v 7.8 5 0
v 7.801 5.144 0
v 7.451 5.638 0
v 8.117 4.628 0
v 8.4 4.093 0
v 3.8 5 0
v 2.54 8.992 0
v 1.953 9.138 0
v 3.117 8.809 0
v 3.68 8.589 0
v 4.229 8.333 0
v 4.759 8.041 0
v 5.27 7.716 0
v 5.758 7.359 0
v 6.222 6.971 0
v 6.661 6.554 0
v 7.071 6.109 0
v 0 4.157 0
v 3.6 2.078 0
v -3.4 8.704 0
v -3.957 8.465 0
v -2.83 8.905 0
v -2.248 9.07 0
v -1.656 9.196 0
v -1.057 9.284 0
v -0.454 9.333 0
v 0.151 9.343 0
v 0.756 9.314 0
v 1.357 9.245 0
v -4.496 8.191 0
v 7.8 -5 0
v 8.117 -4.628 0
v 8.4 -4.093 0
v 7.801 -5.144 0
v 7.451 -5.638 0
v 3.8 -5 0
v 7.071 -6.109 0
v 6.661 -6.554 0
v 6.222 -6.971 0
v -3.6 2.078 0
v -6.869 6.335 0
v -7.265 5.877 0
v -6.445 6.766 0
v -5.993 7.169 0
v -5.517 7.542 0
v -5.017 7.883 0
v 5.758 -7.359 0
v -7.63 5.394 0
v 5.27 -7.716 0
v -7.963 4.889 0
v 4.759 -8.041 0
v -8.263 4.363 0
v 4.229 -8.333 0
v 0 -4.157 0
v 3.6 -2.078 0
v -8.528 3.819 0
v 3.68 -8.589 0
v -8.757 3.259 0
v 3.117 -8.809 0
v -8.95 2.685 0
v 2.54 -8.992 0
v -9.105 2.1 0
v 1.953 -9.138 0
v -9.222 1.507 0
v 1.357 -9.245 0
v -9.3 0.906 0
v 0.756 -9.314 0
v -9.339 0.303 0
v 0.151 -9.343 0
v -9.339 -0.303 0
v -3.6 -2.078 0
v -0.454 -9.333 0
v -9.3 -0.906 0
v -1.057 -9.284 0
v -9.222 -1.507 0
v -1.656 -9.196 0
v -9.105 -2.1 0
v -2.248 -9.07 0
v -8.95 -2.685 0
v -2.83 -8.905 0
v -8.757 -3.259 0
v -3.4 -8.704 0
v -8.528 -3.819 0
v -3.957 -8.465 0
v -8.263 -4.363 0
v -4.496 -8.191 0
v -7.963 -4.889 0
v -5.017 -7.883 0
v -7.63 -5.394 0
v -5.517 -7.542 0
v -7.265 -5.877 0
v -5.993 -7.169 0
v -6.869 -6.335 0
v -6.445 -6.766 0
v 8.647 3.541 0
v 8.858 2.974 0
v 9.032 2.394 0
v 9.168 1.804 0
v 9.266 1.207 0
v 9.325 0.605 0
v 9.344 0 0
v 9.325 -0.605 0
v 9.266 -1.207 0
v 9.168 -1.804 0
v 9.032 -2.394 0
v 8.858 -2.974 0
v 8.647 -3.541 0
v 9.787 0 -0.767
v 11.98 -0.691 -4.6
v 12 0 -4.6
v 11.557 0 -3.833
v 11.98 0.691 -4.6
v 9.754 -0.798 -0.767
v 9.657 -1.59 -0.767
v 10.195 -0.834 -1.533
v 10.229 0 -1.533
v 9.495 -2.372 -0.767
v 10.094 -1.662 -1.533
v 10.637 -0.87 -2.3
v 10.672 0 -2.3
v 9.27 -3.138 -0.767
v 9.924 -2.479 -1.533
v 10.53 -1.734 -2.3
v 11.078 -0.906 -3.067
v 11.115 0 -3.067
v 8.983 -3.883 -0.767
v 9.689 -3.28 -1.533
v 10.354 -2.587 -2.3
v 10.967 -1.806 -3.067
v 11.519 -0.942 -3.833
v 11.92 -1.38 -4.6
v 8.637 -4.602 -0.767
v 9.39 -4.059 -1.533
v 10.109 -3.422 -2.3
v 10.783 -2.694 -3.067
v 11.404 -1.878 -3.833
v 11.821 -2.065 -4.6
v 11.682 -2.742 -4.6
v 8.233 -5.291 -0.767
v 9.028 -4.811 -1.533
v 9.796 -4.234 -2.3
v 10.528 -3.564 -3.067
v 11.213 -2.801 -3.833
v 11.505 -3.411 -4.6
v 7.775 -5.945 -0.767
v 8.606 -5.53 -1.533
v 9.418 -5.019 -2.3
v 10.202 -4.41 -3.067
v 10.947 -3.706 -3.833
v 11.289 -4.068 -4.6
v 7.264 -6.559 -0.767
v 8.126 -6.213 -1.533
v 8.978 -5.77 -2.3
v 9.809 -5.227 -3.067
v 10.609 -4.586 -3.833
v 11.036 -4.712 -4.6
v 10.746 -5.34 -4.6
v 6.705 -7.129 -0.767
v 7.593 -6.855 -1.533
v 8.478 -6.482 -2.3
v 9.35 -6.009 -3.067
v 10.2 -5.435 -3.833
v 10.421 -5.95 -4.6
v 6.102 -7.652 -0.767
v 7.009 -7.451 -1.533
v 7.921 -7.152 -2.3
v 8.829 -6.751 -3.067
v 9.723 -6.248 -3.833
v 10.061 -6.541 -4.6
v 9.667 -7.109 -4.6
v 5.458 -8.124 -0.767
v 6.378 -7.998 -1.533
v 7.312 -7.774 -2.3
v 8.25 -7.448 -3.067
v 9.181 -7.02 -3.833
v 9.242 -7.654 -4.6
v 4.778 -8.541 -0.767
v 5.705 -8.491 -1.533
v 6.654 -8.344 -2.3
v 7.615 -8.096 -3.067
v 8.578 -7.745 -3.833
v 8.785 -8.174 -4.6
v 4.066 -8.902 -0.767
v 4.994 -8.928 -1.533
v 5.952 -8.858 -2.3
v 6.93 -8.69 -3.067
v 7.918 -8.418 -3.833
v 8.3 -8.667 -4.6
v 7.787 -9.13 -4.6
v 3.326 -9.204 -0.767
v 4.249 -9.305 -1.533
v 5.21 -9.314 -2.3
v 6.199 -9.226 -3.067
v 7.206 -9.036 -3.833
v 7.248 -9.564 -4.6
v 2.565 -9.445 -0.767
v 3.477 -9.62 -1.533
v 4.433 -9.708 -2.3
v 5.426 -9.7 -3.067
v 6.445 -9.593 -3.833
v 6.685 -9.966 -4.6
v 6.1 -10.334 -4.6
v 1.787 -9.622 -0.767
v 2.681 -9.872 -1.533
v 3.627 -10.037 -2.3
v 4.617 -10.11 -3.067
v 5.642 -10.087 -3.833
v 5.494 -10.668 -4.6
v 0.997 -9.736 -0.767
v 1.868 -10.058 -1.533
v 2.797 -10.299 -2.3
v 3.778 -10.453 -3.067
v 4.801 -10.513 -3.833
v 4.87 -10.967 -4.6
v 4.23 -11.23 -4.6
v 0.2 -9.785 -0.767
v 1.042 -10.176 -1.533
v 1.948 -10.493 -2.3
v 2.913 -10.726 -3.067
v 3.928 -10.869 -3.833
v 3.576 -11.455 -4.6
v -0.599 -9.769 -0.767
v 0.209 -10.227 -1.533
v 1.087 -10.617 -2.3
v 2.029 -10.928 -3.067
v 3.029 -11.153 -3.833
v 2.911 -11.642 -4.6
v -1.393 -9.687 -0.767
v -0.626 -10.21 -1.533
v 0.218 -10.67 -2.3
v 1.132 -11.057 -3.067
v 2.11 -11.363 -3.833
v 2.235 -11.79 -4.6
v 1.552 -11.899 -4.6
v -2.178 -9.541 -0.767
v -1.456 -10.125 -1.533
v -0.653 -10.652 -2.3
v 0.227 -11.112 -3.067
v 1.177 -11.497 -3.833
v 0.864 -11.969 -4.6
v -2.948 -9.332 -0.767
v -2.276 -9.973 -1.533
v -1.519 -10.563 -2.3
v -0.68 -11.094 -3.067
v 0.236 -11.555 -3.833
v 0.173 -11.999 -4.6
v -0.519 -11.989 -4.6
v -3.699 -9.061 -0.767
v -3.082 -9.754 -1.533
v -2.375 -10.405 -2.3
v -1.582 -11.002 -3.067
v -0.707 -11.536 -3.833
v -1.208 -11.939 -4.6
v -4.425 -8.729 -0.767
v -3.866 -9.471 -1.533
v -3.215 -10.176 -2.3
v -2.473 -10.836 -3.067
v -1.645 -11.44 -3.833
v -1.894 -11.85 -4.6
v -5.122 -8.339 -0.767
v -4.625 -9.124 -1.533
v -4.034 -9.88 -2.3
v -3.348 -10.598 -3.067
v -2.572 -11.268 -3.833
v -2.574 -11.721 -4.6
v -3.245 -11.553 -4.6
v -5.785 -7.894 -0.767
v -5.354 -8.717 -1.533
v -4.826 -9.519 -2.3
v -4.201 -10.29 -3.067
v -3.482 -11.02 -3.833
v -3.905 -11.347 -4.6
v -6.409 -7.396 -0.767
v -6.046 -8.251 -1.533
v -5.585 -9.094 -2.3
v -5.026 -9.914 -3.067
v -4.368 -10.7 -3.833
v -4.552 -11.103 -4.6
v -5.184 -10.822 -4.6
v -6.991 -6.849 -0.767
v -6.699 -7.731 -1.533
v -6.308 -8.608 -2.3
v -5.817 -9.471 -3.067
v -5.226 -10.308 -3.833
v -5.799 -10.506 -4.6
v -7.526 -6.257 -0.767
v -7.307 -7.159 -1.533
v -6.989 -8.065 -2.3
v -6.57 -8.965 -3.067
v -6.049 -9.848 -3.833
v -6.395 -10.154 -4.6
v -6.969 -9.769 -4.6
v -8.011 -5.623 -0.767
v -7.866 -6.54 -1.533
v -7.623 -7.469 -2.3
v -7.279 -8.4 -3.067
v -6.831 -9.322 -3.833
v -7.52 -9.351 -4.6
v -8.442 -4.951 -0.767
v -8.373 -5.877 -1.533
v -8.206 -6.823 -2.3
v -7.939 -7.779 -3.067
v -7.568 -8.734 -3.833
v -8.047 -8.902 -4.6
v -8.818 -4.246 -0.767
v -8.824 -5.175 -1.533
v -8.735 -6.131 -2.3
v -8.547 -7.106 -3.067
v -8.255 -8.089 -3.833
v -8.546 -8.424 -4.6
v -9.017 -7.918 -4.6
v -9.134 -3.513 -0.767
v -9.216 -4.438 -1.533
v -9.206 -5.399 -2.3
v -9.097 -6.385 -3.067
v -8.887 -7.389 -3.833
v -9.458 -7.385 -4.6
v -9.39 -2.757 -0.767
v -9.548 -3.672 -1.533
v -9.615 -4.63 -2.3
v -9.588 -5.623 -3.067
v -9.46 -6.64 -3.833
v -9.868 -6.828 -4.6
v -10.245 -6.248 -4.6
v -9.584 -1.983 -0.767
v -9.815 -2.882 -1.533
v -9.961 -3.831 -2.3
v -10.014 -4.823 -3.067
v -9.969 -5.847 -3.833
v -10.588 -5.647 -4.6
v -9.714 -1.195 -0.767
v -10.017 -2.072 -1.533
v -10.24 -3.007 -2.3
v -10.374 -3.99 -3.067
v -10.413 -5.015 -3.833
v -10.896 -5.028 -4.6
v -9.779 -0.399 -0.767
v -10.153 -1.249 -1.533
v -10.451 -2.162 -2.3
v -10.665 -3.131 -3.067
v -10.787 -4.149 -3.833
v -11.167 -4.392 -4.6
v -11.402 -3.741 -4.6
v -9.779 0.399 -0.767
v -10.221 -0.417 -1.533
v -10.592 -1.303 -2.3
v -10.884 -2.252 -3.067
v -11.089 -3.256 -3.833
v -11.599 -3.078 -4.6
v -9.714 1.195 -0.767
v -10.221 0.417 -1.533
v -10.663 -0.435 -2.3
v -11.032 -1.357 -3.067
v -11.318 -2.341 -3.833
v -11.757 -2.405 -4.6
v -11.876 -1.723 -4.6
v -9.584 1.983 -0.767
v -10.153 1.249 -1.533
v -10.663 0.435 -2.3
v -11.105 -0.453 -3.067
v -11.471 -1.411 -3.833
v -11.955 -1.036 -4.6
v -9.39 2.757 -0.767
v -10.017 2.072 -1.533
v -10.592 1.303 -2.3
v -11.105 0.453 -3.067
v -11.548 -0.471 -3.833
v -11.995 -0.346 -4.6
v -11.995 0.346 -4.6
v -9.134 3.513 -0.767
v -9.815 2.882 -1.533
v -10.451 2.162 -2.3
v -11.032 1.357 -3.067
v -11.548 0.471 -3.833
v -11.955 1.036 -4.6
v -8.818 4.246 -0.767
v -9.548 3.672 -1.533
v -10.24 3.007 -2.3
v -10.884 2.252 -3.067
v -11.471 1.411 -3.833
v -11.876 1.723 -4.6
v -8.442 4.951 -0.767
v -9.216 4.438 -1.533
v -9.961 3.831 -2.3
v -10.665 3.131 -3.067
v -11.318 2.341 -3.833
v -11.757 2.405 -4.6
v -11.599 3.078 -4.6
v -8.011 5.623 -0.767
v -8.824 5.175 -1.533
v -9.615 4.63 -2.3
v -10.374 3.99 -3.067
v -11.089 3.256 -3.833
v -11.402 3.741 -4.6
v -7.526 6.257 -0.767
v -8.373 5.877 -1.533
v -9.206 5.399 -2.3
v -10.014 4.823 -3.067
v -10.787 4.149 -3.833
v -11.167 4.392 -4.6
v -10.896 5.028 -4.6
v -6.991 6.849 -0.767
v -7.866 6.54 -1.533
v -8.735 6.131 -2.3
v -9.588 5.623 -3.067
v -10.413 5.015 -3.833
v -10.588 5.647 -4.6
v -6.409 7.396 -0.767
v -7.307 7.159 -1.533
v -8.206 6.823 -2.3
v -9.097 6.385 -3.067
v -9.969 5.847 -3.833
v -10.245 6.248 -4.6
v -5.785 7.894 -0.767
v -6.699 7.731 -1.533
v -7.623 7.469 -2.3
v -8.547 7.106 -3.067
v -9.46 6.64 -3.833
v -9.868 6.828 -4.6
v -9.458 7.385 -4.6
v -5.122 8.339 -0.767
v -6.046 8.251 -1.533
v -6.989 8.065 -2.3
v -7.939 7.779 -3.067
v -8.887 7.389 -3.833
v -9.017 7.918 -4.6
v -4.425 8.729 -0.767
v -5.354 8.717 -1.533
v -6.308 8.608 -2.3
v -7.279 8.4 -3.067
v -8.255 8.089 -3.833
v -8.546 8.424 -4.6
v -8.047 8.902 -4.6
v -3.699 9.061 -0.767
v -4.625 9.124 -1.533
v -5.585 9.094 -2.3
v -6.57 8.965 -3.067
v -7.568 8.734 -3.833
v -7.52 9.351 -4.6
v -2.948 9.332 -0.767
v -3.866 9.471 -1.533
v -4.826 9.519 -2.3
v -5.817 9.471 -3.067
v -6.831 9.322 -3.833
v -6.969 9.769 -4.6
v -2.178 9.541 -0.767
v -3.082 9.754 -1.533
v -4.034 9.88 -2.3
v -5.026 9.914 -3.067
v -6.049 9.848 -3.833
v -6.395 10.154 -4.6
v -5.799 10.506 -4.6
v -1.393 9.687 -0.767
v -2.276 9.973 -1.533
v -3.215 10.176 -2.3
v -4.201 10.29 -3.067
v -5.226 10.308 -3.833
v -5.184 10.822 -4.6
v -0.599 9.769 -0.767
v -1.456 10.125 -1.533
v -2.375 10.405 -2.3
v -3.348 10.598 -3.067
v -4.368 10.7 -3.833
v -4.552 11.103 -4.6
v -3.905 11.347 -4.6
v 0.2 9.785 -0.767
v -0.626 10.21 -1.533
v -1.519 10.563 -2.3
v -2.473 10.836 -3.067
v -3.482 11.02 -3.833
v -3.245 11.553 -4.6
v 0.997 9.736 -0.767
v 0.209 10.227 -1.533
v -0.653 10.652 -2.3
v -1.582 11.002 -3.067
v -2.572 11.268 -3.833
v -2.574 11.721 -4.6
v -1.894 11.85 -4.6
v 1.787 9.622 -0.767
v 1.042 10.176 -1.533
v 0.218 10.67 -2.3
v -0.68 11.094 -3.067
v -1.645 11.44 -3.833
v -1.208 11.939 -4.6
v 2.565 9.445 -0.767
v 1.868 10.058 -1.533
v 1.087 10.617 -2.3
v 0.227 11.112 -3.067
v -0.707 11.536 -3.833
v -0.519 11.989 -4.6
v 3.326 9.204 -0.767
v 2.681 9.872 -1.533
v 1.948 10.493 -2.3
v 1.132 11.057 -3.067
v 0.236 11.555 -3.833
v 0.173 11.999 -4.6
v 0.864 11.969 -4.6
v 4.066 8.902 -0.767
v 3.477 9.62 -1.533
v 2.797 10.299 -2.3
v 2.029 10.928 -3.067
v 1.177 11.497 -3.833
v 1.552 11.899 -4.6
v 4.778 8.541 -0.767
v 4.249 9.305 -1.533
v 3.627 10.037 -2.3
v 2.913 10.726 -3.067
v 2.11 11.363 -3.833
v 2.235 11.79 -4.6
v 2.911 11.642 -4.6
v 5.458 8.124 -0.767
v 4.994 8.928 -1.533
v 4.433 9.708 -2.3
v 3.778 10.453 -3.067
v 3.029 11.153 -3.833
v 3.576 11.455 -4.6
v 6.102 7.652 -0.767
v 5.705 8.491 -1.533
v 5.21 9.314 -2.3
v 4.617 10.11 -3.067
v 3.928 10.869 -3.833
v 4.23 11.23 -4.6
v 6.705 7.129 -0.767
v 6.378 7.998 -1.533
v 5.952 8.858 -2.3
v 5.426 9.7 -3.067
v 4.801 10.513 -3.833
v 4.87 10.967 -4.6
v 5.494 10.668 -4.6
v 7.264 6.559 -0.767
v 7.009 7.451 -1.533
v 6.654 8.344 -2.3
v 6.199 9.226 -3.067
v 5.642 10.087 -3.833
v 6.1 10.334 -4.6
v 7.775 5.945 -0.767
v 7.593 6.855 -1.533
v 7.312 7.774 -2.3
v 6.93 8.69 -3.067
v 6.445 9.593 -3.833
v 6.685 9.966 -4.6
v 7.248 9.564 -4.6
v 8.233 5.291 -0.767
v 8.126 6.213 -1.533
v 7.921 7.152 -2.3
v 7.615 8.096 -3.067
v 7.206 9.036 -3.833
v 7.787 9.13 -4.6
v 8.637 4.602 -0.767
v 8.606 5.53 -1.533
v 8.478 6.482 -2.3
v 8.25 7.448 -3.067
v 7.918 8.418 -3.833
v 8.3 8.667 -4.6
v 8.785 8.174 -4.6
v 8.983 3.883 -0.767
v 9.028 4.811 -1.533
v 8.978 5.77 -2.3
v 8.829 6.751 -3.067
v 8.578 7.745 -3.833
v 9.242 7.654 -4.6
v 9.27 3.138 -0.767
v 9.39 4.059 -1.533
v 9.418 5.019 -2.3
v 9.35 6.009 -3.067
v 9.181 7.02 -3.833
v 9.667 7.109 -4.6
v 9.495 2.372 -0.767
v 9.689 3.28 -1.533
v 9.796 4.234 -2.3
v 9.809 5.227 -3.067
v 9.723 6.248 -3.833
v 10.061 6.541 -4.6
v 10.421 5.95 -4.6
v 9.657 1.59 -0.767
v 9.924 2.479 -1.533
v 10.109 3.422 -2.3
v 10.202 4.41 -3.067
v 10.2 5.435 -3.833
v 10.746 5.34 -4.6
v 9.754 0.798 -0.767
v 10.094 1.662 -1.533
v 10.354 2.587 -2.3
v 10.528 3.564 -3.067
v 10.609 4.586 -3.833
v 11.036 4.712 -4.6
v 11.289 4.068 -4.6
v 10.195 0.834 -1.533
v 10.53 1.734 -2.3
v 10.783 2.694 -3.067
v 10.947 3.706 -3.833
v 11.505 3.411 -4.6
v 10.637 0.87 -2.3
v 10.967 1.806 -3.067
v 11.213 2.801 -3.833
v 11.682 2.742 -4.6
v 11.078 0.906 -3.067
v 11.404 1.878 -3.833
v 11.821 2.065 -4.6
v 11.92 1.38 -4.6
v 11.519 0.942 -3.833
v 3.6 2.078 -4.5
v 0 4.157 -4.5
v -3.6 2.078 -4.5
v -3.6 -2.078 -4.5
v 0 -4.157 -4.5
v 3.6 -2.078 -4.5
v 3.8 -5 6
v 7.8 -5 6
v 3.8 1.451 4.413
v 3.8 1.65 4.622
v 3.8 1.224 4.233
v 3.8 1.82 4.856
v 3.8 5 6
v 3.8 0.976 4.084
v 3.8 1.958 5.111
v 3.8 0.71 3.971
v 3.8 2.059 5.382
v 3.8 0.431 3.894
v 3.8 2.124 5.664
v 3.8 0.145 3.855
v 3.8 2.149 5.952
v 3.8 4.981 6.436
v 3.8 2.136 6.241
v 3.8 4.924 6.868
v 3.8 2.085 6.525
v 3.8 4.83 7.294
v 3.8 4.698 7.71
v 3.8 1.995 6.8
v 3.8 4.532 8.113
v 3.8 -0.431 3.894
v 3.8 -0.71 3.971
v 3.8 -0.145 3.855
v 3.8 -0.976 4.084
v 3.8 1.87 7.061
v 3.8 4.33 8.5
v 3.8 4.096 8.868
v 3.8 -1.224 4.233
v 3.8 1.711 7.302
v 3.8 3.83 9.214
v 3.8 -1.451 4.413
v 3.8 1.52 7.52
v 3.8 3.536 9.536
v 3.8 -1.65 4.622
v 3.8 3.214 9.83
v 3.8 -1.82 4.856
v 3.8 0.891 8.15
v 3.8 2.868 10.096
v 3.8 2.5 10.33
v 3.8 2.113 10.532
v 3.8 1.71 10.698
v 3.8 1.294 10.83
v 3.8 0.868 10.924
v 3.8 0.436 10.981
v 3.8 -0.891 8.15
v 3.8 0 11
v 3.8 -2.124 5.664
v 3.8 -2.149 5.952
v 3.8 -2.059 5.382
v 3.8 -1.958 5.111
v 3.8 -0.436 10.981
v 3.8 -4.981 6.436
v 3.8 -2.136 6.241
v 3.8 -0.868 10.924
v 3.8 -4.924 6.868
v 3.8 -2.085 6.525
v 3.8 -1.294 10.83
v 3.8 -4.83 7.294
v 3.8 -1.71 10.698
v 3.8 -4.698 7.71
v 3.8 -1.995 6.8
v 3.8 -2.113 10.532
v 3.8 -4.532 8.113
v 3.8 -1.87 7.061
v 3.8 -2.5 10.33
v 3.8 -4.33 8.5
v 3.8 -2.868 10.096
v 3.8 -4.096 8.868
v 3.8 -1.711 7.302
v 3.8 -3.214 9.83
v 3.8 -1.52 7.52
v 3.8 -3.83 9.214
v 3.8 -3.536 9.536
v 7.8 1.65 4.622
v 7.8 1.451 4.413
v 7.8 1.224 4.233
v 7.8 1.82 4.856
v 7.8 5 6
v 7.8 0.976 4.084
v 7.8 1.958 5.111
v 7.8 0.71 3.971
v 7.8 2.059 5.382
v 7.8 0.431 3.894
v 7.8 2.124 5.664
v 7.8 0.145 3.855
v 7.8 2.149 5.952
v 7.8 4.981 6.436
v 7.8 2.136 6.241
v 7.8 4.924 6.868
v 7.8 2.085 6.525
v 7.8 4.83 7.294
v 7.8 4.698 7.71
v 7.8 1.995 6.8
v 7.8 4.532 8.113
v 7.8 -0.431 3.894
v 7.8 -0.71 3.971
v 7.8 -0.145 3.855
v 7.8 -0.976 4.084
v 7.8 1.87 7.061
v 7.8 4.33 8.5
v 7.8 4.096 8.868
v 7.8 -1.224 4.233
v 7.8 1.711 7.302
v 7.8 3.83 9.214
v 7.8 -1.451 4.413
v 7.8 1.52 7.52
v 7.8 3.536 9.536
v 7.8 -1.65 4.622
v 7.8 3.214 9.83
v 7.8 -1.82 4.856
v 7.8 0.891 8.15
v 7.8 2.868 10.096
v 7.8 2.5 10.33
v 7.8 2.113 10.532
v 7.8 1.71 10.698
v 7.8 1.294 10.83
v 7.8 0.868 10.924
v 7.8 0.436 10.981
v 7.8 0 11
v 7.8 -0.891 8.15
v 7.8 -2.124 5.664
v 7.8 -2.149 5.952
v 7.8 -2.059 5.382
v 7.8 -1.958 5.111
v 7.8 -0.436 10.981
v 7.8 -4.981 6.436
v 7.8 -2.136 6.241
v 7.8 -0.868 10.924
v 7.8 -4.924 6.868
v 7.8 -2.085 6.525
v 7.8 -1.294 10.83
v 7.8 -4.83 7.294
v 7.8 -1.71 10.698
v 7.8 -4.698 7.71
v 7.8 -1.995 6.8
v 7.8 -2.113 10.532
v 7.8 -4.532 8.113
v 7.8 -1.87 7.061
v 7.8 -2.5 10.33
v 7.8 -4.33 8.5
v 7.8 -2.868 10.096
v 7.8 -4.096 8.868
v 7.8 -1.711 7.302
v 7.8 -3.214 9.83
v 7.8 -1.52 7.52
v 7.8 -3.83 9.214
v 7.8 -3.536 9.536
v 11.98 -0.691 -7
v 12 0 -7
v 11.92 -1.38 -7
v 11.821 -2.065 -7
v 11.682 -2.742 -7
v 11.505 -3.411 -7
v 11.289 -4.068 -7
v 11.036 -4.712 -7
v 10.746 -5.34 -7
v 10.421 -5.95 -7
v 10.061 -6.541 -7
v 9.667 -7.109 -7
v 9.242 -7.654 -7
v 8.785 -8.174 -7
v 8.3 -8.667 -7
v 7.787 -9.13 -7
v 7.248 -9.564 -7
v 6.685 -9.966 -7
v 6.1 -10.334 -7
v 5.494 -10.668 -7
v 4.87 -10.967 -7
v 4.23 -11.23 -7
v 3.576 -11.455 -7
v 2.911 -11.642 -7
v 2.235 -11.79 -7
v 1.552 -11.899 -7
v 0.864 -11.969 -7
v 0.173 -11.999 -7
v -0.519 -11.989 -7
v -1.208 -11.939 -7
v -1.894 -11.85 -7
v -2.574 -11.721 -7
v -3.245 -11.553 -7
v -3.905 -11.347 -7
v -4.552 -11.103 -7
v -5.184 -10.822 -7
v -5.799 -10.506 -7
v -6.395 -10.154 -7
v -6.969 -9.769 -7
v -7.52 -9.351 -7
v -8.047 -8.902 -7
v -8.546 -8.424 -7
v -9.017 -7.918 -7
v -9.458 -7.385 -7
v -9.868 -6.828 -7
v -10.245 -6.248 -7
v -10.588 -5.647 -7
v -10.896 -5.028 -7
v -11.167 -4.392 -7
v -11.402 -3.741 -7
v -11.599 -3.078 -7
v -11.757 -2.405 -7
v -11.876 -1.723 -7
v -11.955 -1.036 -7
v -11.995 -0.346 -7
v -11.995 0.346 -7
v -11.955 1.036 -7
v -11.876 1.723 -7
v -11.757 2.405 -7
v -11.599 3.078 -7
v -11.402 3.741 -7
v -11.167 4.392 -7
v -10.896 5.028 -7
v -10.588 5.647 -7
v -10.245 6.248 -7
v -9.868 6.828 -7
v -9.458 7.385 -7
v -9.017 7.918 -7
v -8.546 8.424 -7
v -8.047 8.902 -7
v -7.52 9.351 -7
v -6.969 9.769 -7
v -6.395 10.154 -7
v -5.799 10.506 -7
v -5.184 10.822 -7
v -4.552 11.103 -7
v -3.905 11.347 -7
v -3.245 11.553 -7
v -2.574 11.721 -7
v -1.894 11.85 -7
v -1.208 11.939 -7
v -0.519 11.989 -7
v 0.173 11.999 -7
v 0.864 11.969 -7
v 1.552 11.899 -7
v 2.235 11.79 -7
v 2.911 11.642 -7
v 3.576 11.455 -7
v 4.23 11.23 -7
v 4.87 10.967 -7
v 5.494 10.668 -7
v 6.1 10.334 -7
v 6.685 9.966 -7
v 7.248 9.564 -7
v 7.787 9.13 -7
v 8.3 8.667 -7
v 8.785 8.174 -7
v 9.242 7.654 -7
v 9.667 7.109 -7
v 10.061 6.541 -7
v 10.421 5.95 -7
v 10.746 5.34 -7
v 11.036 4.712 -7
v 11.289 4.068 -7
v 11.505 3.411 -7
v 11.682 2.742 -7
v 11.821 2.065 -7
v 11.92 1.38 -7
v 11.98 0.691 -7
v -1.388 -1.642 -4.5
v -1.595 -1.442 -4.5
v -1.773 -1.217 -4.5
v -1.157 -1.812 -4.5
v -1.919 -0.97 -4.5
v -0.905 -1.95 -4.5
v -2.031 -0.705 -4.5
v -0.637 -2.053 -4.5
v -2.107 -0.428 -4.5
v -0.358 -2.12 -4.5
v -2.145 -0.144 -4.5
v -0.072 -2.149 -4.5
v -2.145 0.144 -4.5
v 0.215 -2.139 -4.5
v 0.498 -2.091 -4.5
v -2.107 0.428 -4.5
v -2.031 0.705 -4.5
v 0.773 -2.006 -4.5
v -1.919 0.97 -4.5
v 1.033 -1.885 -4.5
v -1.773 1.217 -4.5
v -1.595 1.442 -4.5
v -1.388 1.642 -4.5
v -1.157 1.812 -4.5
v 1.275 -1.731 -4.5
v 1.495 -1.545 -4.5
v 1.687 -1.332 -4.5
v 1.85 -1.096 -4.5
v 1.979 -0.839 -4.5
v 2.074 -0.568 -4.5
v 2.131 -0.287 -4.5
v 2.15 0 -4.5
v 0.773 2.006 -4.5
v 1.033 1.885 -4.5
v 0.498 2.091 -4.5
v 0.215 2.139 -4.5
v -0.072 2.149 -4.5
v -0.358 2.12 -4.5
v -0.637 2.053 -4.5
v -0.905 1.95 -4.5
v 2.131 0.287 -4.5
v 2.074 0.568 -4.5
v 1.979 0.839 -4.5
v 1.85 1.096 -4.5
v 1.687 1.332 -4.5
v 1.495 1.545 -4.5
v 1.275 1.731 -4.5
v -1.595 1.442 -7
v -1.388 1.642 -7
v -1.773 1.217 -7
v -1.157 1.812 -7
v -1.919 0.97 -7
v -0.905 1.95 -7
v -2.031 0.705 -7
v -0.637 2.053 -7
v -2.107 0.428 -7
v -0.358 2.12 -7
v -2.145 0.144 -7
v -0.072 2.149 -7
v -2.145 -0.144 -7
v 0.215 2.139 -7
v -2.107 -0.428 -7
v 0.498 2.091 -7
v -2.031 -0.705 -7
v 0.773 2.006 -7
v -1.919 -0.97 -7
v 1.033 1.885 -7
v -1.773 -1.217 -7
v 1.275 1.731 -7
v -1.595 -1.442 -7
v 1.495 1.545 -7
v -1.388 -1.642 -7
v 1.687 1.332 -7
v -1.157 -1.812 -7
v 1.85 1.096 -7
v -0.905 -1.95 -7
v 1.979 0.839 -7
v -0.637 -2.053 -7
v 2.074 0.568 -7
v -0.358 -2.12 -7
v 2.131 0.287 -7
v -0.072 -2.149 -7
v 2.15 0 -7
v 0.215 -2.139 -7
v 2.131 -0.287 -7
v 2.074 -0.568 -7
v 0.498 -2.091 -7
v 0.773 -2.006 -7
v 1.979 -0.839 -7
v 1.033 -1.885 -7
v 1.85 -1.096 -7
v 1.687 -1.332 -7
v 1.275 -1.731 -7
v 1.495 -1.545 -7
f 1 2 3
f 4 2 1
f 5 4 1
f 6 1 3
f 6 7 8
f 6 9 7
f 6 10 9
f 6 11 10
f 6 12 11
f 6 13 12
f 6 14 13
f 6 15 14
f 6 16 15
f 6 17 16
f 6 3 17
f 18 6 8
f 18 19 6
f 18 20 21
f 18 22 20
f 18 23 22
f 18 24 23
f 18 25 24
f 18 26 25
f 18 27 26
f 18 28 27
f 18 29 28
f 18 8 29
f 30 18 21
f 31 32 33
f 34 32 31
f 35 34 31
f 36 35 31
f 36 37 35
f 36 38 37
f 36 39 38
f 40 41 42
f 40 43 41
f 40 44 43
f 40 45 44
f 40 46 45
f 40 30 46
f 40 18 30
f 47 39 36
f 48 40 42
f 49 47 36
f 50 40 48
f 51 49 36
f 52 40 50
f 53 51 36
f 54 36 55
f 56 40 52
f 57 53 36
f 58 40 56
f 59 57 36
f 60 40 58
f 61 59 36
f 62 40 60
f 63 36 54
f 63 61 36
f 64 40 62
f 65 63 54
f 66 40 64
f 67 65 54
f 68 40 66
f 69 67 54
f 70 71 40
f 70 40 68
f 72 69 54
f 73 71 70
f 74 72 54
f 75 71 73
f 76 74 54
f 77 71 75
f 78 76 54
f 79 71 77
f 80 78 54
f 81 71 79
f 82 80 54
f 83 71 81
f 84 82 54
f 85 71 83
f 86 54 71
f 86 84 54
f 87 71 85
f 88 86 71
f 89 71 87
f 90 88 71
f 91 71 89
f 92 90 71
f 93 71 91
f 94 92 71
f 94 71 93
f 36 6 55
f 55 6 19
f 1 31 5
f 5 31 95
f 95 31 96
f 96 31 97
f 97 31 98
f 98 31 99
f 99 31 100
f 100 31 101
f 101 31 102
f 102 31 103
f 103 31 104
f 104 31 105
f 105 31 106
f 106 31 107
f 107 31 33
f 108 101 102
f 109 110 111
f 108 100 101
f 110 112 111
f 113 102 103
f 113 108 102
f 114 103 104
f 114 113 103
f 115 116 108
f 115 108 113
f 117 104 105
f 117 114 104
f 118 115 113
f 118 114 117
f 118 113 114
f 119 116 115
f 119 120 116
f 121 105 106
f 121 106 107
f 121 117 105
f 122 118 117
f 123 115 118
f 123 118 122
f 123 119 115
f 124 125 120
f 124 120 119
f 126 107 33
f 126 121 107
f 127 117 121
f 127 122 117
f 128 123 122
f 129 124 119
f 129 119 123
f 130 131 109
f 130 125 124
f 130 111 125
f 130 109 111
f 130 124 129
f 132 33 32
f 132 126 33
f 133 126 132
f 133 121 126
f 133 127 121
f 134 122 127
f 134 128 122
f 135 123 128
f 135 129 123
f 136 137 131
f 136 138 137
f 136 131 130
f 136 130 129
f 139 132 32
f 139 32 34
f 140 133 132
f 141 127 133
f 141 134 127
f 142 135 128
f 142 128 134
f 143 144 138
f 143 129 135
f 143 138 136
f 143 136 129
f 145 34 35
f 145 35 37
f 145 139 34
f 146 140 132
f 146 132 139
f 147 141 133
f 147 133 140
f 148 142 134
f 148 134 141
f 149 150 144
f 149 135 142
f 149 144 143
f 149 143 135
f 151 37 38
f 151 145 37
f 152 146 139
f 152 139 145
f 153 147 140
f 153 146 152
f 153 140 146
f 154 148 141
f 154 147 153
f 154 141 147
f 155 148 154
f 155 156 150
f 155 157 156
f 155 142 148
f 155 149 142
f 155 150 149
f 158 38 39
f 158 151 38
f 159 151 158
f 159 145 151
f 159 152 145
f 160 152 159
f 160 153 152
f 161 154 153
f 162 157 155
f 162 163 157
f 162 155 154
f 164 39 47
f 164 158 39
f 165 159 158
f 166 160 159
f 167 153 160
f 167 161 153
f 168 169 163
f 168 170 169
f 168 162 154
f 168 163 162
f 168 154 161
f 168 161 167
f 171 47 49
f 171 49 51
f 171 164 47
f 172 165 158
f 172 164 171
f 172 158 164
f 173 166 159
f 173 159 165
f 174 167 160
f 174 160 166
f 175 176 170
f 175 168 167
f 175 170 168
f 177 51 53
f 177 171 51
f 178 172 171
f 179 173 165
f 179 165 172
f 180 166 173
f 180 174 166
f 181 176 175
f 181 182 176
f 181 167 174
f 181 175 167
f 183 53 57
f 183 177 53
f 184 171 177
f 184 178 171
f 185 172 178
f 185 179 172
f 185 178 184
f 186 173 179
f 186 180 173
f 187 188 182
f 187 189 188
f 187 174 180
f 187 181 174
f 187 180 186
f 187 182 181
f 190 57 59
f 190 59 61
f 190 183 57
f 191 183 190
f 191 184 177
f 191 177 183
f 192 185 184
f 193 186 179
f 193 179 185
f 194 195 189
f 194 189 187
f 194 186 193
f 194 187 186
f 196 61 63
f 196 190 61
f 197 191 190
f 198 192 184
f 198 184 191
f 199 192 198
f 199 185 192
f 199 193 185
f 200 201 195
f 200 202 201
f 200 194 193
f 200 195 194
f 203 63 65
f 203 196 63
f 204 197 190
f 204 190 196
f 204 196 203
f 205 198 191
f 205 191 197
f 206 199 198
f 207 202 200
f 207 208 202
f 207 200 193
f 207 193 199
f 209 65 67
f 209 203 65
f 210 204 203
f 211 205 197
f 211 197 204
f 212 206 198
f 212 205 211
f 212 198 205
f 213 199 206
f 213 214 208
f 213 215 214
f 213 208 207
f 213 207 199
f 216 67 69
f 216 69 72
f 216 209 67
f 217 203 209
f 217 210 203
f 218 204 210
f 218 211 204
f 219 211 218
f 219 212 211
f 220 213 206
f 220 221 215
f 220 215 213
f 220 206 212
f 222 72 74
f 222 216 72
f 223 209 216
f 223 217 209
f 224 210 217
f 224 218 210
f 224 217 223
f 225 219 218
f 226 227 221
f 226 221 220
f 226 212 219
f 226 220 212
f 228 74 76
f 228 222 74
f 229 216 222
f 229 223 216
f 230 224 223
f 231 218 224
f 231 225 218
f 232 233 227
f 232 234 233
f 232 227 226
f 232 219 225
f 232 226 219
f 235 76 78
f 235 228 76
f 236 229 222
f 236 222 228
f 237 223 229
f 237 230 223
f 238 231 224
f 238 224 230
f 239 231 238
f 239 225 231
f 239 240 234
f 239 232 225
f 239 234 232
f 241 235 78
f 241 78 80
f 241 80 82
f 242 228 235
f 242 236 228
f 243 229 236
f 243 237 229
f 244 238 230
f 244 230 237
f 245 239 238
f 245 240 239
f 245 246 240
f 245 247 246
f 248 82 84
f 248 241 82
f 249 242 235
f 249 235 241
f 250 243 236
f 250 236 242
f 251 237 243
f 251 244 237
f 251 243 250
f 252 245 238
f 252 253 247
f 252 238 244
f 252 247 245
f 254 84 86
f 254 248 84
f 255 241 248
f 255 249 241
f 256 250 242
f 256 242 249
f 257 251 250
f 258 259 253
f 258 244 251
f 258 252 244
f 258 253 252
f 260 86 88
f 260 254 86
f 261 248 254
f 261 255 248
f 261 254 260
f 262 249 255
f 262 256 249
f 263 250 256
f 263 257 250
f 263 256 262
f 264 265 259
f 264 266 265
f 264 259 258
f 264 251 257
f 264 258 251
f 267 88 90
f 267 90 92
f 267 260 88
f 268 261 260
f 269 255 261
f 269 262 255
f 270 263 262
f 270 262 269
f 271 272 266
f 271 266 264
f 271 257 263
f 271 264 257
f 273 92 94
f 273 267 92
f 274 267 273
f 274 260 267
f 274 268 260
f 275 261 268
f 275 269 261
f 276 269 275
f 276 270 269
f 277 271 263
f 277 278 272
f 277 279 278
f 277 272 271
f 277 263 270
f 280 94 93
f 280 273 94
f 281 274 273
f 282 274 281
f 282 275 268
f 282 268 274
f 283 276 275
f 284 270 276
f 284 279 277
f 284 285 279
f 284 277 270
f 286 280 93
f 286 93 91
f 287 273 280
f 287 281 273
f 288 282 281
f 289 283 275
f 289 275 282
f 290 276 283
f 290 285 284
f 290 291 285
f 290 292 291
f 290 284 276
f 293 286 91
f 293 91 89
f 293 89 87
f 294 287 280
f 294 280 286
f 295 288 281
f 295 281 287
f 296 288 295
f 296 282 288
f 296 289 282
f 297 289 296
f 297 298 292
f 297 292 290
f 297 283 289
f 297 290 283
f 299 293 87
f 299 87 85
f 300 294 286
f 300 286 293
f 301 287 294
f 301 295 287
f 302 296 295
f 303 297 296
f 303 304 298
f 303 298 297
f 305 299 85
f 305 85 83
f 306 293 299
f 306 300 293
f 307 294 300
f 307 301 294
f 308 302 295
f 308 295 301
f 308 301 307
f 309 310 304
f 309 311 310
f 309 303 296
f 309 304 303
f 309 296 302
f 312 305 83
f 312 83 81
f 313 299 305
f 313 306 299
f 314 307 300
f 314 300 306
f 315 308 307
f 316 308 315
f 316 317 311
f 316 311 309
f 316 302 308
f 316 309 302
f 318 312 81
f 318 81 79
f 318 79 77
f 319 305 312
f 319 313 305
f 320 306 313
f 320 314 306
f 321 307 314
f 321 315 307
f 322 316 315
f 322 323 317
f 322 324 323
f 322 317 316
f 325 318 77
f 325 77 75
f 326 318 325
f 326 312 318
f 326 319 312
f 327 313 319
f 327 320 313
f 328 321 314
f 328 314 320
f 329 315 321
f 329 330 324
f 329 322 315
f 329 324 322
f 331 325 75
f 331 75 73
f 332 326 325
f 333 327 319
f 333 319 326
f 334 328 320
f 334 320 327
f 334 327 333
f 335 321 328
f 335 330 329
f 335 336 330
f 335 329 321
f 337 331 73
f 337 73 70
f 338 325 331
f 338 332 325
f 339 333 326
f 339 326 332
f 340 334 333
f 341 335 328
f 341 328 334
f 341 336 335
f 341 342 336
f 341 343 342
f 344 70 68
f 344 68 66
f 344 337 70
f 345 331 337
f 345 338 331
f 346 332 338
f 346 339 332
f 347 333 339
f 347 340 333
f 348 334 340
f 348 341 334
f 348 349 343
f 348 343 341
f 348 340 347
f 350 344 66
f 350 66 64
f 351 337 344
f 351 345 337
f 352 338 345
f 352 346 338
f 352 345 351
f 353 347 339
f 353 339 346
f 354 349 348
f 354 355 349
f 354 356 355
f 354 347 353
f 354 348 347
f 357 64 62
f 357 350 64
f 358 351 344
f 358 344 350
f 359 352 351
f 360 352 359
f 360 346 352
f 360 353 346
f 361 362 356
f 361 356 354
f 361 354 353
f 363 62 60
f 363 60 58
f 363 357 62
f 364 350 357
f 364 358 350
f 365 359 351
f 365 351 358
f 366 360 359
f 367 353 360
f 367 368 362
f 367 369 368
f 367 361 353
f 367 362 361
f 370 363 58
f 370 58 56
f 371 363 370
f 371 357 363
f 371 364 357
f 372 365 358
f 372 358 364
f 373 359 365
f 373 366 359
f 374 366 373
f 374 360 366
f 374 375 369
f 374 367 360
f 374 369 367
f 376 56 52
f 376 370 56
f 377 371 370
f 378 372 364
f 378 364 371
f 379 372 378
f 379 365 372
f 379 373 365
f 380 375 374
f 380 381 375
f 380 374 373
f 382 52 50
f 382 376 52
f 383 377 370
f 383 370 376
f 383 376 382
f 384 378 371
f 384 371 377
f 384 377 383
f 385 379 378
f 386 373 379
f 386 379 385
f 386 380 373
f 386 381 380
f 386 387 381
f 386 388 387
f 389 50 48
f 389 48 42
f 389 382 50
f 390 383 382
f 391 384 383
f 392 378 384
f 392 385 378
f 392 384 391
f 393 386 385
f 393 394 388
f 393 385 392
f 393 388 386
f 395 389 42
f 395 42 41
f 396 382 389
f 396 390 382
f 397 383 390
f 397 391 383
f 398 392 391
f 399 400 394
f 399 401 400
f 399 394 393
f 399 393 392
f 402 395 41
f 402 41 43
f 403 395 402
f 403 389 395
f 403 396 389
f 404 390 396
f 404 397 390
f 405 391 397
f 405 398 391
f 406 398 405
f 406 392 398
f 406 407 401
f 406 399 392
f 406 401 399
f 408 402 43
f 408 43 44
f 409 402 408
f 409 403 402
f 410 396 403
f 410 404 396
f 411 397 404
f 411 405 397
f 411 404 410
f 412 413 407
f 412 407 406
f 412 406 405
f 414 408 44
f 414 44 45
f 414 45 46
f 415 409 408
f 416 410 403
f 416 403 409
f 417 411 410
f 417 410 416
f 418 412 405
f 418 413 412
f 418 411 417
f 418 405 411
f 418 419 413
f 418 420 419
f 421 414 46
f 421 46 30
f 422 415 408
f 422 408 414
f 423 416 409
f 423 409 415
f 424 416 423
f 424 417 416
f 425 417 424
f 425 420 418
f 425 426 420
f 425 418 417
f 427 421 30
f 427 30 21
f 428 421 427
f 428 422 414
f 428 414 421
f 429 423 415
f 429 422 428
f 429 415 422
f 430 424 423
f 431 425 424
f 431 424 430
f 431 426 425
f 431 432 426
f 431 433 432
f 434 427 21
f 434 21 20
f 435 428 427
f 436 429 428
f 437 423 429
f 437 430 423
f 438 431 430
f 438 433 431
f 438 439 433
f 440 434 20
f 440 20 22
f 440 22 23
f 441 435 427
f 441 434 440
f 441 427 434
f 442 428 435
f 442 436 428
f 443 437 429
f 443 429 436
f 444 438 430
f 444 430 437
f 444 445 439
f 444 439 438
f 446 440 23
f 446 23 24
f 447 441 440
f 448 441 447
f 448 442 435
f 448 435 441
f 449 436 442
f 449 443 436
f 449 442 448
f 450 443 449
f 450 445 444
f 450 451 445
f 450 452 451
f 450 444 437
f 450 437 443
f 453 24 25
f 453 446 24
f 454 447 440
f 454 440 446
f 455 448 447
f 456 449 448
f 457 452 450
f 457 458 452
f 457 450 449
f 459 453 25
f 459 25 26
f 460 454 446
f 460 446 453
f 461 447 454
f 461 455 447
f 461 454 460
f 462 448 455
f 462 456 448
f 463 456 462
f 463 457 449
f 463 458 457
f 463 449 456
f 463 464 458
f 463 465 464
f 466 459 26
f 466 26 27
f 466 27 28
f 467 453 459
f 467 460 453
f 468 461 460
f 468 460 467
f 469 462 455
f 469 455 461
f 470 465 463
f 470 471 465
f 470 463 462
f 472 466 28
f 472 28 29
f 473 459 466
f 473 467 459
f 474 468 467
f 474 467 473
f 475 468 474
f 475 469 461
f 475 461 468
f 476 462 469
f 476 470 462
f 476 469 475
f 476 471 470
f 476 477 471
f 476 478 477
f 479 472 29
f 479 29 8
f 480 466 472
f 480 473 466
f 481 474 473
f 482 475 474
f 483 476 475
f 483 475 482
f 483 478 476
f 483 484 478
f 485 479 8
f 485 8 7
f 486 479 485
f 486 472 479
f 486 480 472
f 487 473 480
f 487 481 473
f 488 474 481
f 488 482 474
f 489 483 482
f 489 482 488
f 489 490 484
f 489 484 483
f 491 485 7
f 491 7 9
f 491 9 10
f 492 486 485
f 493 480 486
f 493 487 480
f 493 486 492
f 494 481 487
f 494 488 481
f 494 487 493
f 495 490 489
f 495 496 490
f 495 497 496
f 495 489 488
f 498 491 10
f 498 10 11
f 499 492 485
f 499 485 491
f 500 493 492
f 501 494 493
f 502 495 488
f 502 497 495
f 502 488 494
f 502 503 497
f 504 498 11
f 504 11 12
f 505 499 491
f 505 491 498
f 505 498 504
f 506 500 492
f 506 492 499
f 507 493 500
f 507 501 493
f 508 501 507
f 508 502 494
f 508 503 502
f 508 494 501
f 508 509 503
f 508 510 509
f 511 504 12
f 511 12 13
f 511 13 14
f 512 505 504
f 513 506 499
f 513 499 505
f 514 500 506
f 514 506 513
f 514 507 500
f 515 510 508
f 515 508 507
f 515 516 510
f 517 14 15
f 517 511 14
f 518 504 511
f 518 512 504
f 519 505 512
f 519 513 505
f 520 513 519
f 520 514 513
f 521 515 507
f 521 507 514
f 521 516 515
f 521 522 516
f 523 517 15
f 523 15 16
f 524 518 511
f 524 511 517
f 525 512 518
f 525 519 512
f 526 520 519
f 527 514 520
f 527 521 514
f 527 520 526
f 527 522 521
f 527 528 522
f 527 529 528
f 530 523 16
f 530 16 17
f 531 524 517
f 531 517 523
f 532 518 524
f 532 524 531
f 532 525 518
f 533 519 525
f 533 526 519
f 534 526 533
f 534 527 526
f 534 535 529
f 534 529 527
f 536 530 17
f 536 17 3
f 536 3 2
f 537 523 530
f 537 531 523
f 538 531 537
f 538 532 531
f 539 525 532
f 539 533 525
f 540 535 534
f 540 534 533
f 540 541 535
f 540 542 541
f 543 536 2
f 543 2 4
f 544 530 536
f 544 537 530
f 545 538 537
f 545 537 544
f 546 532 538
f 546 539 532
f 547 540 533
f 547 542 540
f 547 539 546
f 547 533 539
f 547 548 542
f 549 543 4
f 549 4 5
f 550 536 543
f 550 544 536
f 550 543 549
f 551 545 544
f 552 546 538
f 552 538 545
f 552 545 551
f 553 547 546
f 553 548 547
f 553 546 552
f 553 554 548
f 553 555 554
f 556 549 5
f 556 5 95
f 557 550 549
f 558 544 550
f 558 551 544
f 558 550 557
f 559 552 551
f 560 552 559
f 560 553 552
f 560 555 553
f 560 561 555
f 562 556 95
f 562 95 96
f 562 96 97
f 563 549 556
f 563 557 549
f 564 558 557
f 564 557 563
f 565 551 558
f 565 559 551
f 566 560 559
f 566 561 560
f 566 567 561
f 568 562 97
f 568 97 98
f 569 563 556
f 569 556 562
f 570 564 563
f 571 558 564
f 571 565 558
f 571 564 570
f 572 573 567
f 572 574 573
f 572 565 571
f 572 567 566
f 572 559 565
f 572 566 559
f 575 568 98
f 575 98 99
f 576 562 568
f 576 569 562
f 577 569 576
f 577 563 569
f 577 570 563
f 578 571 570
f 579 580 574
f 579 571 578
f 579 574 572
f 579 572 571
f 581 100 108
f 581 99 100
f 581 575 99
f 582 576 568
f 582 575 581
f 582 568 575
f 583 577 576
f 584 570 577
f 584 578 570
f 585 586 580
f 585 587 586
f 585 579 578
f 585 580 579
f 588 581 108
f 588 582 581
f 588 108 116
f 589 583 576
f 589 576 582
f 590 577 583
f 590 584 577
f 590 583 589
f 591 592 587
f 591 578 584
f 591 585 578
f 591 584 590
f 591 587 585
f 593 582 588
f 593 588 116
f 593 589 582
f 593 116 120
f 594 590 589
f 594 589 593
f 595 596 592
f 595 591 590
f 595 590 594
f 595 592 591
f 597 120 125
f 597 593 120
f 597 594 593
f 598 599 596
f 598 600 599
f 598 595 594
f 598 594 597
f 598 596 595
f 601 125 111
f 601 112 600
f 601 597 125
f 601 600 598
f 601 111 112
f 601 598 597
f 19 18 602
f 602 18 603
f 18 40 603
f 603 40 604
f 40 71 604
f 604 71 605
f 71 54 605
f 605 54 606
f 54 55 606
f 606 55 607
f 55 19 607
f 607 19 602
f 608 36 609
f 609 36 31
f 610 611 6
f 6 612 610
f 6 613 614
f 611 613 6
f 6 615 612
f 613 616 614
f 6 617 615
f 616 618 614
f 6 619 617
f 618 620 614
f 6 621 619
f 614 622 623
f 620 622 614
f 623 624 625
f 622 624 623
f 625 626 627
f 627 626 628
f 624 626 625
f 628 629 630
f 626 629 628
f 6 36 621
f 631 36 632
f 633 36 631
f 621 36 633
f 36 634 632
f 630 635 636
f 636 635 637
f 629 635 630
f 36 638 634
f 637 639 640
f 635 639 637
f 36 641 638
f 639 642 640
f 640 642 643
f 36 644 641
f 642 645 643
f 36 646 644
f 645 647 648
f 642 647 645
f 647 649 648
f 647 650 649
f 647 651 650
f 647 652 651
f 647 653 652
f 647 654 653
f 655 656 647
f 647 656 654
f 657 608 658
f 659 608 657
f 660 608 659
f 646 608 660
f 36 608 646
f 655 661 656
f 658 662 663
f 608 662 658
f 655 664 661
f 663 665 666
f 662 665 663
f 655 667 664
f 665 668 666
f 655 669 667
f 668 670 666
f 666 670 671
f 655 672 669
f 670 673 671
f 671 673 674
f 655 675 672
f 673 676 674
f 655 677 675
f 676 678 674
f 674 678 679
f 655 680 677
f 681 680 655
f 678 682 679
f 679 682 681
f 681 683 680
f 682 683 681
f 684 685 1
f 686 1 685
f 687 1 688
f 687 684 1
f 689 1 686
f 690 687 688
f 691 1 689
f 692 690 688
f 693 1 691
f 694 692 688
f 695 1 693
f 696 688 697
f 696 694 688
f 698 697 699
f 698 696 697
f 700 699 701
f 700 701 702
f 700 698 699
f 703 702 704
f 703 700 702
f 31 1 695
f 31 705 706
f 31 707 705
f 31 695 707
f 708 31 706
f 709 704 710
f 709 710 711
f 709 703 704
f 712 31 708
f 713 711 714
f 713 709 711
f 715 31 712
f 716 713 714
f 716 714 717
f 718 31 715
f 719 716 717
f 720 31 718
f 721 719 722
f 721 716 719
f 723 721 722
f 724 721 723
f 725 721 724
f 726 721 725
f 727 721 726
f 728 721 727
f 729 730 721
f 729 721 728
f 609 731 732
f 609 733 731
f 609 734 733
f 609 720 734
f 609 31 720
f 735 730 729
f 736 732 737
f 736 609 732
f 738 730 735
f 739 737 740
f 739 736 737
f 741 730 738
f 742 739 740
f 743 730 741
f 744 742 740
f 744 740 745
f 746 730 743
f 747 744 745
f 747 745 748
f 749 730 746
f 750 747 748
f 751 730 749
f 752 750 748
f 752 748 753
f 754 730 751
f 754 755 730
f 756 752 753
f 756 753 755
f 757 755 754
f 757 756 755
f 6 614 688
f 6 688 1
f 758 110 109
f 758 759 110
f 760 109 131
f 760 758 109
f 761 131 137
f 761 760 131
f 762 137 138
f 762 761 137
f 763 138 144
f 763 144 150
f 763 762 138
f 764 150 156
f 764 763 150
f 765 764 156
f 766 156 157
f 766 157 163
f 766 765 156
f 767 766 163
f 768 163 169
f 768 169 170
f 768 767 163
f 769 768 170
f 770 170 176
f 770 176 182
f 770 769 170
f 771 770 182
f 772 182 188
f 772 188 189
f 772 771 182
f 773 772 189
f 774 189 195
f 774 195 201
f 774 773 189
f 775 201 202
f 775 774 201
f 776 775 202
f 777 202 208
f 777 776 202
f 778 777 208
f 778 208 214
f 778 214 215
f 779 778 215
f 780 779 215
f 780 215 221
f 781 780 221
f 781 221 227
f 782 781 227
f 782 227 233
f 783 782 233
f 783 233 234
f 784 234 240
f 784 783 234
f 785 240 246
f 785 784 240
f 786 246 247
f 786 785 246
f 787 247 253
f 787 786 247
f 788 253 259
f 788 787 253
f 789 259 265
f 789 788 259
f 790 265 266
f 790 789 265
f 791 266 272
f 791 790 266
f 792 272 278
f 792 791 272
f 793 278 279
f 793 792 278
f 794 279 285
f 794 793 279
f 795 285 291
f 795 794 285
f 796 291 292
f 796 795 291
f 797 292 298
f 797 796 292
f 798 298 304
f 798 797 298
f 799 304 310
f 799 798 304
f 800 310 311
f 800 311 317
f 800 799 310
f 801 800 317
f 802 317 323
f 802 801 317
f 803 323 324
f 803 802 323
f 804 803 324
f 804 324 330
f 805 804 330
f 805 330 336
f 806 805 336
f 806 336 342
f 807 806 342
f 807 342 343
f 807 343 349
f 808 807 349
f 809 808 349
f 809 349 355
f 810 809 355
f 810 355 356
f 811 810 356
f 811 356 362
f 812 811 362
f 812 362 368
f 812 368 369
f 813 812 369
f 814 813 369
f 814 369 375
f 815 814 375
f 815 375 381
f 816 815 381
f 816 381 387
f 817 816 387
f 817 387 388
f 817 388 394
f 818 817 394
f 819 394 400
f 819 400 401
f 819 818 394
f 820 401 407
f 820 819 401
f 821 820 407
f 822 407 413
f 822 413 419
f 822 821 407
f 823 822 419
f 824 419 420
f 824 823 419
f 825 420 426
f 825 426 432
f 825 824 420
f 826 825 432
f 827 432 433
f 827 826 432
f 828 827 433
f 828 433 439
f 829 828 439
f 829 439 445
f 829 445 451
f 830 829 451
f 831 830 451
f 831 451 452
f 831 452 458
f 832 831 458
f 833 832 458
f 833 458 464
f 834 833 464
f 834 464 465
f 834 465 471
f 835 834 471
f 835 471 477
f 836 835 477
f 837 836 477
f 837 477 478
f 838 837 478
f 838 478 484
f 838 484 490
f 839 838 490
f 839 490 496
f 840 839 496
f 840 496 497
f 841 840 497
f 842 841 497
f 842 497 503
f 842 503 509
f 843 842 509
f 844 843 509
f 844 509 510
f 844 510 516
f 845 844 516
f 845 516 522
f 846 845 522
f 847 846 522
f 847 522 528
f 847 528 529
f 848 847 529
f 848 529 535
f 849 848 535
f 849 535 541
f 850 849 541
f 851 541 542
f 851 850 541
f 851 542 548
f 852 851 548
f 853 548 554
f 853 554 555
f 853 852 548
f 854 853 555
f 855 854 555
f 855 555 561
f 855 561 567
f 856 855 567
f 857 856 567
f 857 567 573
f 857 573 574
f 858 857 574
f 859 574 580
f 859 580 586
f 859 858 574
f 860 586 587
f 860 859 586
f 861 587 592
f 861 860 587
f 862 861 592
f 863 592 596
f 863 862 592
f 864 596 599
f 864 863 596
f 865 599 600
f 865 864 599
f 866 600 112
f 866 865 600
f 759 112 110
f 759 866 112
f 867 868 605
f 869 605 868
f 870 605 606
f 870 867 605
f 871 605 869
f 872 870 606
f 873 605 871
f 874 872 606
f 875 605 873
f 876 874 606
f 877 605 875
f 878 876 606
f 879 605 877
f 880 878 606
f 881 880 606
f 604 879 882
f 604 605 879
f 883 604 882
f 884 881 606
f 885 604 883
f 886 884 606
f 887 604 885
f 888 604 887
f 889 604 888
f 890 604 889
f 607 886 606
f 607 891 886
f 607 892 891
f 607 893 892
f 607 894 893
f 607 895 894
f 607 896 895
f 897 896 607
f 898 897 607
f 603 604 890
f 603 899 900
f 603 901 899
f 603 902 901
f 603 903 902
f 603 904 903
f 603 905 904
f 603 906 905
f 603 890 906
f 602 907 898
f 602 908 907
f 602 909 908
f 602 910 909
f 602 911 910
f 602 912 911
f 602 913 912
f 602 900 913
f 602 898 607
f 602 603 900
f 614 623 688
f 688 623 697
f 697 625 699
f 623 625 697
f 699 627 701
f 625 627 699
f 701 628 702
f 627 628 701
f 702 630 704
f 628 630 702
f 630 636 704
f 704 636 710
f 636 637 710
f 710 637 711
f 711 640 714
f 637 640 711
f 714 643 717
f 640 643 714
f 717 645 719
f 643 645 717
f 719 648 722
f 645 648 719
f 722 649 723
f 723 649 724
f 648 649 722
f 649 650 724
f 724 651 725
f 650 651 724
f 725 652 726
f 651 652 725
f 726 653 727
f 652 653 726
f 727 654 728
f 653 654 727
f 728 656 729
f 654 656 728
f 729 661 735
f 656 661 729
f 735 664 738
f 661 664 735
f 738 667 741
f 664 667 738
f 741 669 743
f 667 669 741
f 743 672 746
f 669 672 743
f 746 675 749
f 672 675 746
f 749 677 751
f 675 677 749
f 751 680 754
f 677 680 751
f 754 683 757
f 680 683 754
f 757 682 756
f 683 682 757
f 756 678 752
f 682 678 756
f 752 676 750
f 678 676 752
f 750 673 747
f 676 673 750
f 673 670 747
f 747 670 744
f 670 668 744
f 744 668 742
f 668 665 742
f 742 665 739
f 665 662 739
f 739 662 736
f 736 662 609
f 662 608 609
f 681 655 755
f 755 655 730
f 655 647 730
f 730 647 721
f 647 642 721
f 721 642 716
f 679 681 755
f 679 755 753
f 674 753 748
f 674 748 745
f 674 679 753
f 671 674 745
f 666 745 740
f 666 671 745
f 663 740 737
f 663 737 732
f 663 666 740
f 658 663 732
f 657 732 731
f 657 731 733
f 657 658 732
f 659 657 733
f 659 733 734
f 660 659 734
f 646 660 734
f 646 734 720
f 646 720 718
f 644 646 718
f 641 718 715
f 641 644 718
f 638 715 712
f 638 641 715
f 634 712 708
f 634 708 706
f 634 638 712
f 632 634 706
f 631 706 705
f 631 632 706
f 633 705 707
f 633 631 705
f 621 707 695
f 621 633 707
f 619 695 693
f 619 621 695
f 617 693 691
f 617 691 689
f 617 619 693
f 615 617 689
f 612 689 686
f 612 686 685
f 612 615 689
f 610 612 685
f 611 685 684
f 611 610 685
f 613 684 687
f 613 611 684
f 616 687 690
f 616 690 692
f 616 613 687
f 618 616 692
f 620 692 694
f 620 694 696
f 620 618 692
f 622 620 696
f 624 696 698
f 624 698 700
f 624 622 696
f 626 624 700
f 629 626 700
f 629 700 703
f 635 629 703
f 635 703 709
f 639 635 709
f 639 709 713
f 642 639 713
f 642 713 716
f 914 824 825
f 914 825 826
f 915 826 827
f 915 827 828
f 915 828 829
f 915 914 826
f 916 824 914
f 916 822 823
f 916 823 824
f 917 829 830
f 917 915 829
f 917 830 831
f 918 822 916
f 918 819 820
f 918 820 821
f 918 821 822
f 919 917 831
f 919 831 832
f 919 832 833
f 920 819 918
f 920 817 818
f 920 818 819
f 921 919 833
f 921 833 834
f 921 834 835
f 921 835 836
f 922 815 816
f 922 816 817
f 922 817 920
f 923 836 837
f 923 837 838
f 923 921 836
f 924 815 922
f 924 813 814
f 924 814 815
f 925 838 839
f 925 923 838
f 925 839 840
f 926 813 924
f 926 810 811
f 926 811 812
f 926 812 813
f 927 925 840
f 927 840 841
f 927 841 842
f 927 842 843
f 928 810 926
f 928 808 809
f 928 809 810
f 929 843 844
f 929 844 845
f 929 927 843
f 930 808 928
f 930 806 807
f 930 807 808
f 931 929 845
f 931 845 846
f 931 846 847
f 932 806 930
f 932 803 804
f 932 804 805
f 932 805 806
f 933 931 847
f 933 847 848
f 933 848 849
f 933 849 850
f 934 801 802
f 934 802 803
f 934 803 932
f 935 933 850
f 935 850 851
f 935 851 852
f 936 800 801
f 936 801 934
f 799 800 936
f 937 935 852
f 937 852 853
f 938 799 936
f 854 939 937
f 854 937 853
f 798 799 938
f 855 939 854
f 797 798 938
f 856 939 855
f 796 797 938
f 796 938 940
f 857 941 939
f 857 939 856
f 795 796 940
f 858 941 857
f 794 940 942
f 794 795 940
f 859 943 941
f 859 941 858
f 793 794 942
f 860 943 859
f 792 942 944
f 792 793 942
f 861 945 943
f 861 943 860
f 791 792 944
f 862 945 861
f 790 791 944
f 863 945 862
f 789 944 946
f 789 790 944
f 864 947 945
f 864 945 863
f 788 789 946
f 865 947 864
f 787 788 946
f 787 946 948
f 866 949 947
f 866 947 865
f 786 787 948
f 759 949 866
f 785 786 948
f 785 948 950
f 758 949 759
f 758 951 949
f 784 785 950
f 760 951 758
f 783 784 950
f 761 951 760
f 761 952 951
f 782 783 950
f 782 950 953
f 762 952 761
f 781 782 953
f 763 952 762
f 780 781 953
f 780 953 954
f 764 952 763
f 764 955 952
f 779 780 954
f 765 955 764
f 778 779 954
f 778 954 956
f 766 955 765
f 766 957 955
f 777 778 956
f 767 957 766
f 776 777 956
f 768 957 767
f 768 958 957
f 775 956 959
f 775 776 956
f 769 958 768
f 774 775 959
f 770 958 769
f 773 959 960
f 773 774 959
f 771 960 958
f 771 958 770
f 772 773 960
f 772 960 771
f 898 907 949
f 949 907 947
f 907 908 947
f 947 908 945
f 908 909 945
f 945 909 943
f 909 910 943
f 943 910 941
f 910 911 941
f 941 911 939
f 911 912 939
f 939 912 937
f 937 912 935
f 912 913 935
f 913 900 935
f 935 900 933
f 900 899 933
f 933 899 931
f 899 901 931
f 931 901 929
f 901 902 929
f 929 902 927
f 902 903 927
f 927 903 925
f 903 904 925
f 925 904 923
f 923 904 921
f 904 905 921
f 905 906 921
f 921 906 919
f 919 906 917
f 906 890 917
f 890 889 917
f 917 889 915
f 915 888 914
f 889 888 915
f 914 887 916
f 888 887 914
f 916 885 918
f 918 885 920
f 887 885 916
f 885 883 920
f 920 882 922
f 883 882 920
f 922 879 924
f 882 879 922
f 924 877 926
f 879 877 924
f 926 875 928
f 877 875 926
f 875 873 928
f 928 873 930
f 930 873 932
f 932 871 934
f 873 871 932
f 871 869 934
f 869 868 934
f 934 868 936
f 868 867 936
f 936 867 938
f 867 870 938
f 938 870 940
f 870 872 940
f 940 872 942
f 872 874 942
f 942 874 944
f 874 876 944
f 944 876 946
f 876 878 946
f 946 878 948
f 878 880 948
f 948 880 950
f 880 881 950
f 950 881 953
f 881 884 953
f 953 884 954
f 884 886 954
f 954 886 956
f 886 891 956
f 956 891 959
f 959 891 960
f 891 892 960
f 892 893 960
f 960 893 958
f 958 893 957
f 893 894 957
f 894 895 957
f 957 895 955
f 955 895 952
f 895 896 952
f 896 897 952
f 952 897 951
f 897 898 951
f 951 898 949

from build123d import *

# Parameters (mm, degrees)
PAD_DEPTH       = 4
POCKET_DEPTH    = 4.5
SKETCH003_R     = 2.15
POCKET001_DEPTH = 7.001


with BuildPart() as part:
    # Sketch → Revolution (revolve)
    with BuildSketch(Plane.XZ):
        Polygon((0, 0), (9.344189, 0), (12, -4.6), (12, -7), (0, -7), align=None)
    revolve(axis=Axis((0, 0, 0), (0, 0, 1)))

    # Sketch002 → Pad (new body)
    with BuildSketch(Plane.YZ.offset(3.8)):
        with BuildLine():
            ThreePointArc((5, 6), (0, 11), (-5, 6))
            Line((-5, 6), (-5, 0))
            Line((-5, 0), (5, 0))
            Line((5, 6), (5, 0))
        make_face()
        with BuildLine():
            Line((-1.52028, 7.52028), (-0.890559, 8.15))
            Line((-0.890559, 8.15), (0.890559, 8.15))
            Line((0.890559, 8.15), (1.52028, 7.52028))
            ThreePointArc((-1.52028, 7.52028), (0, 3.85), (1.52028, 7.52028))
        make_face(mode=Mode.SUBTRACT)
    extrude(amount=PAD_DEPTH)

    # Sketch001 → Pocket (cut)
    with BuildSketch(Plane.XY):
        Polygon((3.6, 2.078461), (0, 4.156922), (-3.6, 2.078461), (-3.6, -2.078461), (0, -4.156922), (3.6, -2.078461), align=None)
    extrude(amount=-POCKET_DEPTH, mode=Mode.SUBTRACT)

    # Sketch003 → Pocket001 (cut, through all)
    with BuildSketch(Plane.XY):
        Circle(SKETCH003_R)
    extrude(amount=-POCKET001_DEPTH, mode=Mode.SUBTRACT)


solid = part.part
